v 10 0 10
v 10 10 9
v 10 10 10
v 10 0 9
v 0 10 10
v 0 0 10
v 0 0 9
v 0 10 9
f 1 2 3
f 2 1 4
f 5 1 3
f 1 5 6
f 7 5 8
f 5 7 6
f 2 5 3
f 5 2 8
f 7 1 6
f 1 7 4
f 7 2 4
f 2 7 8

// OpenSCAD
difference() {
  cube([10, 10, 10]);
  translate([0, 0, -1]) cube([10, 10, 10]);
}
